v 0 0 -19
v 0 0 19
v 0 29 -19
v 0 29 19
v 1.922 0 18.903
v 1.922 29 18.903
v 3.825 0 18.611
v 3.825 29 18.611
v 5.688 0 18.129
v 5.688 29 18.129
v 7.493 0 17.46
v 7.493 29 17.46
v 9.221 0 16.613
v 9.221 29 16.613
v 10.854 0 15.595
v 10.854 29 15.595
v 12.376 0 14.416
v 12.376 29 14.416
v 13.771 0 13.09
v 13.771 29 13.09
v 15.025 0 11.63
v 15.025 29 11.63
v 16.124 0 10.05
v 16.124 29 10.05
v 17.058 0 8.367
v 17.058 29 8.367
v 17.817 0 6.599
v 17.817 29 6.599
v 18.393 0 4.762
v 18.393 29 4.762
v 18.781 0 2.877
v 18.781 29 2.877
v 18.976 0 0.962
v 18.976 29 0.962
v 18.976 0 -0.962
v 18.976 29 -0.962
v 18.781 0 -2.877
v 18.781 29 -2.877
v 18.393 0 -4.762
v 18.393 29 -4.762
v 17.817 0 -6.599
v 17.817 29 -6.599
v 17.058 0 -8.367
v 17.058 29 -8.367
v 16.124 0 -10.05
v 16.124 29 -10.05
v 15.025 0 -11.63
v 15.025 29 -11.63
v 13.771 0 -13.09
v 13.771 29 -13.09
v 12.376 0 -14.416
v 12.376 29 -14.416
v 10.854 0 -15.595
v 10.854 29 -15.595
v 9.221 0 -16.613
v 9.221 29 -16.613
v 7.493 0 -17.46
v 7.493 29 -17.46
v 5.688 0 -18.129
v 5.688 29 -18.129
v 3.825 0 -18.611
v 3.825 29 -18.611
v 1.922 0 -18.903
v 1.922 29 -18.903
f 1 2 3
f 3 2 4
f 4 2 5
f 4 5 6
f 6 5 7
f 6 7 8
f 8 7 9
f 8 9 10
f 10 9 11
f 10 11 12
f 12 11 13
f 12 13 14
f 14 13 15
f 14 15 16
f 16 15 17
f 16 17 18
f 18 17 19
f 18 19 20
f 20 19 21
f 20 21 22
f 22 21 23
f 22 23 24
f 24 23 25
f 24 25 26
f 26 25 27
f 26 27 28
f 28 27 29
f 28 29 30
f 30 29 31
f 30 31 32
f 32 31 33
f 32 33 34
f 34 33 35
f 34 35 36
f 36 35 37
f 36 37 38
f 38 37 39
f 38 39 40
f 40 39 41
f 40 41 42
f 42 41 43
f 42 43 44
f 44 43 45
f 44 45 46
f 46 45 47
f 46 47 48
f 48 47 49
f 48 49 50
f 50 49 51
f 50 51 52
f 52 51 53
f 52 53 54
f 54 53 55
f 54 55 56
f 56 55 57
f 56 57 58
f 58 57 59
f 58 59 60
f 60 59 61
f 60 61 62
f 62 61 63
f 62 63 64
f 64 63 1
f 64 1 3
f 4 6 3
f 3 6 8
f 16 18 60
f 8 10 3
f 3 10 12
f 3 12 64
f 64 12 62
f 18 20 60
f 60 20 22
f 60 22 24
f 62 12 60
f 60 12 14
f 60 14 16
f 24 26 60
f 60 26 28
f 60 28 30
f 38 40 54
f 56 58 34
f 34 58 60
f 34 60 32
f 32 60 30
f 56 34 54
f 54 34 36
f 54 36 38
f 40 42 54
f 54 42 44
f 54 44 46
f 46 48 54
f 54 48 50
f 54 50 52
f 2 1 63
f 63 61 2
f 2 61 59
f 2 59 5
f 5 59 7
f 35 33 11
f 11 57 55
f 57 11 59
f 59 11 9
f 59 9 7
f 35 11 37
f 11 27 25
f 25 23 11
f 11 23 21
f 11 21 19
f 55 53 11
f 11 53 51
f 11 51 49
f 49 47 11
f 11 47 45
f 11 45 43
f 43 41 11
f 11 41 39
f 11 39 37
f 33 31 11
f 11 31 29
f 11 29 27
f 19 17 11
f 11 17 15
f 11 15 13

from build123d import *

# Parameters (mm, degrees)
SKETCH1_R                = 19
BOSS_EXTRUDE1_DEPTH      = 29
SPLIT1_SURFACE_1_BACK    = 62.066
SPLIT1_SURFACE_1_DEPTH   = 124.132
SPLIT1_SURFACE_2_BACK    = 62.066
SPLIT1_SURFACE_2_DEPTH   = 124.132
BODY_DELETE_KEEP_1_DEPTH = 29


# Read off the part's stored shape, not the designer's step: Body-Delete/Keep 1
with BuildPart() as part:
    # Sketch1 → Boss-Extrude1 (new body)
    with BuildSketch(Plane(origin=(0, 0, 0), x_dir=(1, 0, 0), z_dir=(0, 1, 0))):
        with Locations(Location((0, 0, 0), (0, 0, 270))):
            Circle(SKETCH1_R)
    extrude(amount=BOSS_EXTRUDE1_DEPTH)


with BuildPart() as body_2:
    # Split1: the piece behind the surface
    add(part.part)
    # Split1 surface: a surface, the sketch's curves swept straight by 124.132 mm
    with BuildLine(Plane.XY.offset(-SPLIT1_SURFACE_1_BACK), mode=Mode.PRIVATE) as split1_surface_1_path:
        Line((0, 30.065054412), (0, -0.518911578))
    split1_surface_1 = Shell.extrude(split1_surface_1_path.wire(), (0 * SPLIT1_SURFACE_1_DEPTH, 0 * SPLIT1_SURFACE_1_DEPTH, 1 * SPLIT1_SURFACE_1_DEPTH))
    split(bisect_by=split1_surface_1, keep=Keep.BOTTOM)

    # Body-Delete/Keep 1 outline → Body-Delete/Keep 1 (cut)
    with BuildSketch(Plane(origin=(0, 0, 0), x_dir=(1, 0, 0), z_dir=(0, 1, 0))):
        with BuildLine():
            ThreePointArc((0, 19), (-19, 0), (0, -19))
            Line((0, -19), (0, 19))
        make_face()
    extrude(amount=BODY_DELETE_KEEP_1_DEPTH, mode=Mode.SUBTRACT)


with BuildPart() as part_1:
    add(part.part)

    # Split1: split by a surface, the side it looks to stays
    # Split1 surface: a surface, the sketch's curves swept straight by 124.132 mm
    with BuildLine(Plane.XY.offset(-SPLIT1_SURFACE_2_BACK), mode=Mode.PRIVATE) as split1_surface_2_path:
        Line((0, 30.065054412), (0, -0.518911578))
    split1_surface_2 = Shell.extrude(split1_surface_2_path.wire(), (0 * SPLIT1_SURFACE_2_DEPTH, 0 * SPLIT1_SURFACE_2_DEPTH, 1 * SPLIT1_SURFACE_2_DEPTH))
    split(bisect_by=split1_surface_2, keep=Keep.TOP)


solid = part_1.part
